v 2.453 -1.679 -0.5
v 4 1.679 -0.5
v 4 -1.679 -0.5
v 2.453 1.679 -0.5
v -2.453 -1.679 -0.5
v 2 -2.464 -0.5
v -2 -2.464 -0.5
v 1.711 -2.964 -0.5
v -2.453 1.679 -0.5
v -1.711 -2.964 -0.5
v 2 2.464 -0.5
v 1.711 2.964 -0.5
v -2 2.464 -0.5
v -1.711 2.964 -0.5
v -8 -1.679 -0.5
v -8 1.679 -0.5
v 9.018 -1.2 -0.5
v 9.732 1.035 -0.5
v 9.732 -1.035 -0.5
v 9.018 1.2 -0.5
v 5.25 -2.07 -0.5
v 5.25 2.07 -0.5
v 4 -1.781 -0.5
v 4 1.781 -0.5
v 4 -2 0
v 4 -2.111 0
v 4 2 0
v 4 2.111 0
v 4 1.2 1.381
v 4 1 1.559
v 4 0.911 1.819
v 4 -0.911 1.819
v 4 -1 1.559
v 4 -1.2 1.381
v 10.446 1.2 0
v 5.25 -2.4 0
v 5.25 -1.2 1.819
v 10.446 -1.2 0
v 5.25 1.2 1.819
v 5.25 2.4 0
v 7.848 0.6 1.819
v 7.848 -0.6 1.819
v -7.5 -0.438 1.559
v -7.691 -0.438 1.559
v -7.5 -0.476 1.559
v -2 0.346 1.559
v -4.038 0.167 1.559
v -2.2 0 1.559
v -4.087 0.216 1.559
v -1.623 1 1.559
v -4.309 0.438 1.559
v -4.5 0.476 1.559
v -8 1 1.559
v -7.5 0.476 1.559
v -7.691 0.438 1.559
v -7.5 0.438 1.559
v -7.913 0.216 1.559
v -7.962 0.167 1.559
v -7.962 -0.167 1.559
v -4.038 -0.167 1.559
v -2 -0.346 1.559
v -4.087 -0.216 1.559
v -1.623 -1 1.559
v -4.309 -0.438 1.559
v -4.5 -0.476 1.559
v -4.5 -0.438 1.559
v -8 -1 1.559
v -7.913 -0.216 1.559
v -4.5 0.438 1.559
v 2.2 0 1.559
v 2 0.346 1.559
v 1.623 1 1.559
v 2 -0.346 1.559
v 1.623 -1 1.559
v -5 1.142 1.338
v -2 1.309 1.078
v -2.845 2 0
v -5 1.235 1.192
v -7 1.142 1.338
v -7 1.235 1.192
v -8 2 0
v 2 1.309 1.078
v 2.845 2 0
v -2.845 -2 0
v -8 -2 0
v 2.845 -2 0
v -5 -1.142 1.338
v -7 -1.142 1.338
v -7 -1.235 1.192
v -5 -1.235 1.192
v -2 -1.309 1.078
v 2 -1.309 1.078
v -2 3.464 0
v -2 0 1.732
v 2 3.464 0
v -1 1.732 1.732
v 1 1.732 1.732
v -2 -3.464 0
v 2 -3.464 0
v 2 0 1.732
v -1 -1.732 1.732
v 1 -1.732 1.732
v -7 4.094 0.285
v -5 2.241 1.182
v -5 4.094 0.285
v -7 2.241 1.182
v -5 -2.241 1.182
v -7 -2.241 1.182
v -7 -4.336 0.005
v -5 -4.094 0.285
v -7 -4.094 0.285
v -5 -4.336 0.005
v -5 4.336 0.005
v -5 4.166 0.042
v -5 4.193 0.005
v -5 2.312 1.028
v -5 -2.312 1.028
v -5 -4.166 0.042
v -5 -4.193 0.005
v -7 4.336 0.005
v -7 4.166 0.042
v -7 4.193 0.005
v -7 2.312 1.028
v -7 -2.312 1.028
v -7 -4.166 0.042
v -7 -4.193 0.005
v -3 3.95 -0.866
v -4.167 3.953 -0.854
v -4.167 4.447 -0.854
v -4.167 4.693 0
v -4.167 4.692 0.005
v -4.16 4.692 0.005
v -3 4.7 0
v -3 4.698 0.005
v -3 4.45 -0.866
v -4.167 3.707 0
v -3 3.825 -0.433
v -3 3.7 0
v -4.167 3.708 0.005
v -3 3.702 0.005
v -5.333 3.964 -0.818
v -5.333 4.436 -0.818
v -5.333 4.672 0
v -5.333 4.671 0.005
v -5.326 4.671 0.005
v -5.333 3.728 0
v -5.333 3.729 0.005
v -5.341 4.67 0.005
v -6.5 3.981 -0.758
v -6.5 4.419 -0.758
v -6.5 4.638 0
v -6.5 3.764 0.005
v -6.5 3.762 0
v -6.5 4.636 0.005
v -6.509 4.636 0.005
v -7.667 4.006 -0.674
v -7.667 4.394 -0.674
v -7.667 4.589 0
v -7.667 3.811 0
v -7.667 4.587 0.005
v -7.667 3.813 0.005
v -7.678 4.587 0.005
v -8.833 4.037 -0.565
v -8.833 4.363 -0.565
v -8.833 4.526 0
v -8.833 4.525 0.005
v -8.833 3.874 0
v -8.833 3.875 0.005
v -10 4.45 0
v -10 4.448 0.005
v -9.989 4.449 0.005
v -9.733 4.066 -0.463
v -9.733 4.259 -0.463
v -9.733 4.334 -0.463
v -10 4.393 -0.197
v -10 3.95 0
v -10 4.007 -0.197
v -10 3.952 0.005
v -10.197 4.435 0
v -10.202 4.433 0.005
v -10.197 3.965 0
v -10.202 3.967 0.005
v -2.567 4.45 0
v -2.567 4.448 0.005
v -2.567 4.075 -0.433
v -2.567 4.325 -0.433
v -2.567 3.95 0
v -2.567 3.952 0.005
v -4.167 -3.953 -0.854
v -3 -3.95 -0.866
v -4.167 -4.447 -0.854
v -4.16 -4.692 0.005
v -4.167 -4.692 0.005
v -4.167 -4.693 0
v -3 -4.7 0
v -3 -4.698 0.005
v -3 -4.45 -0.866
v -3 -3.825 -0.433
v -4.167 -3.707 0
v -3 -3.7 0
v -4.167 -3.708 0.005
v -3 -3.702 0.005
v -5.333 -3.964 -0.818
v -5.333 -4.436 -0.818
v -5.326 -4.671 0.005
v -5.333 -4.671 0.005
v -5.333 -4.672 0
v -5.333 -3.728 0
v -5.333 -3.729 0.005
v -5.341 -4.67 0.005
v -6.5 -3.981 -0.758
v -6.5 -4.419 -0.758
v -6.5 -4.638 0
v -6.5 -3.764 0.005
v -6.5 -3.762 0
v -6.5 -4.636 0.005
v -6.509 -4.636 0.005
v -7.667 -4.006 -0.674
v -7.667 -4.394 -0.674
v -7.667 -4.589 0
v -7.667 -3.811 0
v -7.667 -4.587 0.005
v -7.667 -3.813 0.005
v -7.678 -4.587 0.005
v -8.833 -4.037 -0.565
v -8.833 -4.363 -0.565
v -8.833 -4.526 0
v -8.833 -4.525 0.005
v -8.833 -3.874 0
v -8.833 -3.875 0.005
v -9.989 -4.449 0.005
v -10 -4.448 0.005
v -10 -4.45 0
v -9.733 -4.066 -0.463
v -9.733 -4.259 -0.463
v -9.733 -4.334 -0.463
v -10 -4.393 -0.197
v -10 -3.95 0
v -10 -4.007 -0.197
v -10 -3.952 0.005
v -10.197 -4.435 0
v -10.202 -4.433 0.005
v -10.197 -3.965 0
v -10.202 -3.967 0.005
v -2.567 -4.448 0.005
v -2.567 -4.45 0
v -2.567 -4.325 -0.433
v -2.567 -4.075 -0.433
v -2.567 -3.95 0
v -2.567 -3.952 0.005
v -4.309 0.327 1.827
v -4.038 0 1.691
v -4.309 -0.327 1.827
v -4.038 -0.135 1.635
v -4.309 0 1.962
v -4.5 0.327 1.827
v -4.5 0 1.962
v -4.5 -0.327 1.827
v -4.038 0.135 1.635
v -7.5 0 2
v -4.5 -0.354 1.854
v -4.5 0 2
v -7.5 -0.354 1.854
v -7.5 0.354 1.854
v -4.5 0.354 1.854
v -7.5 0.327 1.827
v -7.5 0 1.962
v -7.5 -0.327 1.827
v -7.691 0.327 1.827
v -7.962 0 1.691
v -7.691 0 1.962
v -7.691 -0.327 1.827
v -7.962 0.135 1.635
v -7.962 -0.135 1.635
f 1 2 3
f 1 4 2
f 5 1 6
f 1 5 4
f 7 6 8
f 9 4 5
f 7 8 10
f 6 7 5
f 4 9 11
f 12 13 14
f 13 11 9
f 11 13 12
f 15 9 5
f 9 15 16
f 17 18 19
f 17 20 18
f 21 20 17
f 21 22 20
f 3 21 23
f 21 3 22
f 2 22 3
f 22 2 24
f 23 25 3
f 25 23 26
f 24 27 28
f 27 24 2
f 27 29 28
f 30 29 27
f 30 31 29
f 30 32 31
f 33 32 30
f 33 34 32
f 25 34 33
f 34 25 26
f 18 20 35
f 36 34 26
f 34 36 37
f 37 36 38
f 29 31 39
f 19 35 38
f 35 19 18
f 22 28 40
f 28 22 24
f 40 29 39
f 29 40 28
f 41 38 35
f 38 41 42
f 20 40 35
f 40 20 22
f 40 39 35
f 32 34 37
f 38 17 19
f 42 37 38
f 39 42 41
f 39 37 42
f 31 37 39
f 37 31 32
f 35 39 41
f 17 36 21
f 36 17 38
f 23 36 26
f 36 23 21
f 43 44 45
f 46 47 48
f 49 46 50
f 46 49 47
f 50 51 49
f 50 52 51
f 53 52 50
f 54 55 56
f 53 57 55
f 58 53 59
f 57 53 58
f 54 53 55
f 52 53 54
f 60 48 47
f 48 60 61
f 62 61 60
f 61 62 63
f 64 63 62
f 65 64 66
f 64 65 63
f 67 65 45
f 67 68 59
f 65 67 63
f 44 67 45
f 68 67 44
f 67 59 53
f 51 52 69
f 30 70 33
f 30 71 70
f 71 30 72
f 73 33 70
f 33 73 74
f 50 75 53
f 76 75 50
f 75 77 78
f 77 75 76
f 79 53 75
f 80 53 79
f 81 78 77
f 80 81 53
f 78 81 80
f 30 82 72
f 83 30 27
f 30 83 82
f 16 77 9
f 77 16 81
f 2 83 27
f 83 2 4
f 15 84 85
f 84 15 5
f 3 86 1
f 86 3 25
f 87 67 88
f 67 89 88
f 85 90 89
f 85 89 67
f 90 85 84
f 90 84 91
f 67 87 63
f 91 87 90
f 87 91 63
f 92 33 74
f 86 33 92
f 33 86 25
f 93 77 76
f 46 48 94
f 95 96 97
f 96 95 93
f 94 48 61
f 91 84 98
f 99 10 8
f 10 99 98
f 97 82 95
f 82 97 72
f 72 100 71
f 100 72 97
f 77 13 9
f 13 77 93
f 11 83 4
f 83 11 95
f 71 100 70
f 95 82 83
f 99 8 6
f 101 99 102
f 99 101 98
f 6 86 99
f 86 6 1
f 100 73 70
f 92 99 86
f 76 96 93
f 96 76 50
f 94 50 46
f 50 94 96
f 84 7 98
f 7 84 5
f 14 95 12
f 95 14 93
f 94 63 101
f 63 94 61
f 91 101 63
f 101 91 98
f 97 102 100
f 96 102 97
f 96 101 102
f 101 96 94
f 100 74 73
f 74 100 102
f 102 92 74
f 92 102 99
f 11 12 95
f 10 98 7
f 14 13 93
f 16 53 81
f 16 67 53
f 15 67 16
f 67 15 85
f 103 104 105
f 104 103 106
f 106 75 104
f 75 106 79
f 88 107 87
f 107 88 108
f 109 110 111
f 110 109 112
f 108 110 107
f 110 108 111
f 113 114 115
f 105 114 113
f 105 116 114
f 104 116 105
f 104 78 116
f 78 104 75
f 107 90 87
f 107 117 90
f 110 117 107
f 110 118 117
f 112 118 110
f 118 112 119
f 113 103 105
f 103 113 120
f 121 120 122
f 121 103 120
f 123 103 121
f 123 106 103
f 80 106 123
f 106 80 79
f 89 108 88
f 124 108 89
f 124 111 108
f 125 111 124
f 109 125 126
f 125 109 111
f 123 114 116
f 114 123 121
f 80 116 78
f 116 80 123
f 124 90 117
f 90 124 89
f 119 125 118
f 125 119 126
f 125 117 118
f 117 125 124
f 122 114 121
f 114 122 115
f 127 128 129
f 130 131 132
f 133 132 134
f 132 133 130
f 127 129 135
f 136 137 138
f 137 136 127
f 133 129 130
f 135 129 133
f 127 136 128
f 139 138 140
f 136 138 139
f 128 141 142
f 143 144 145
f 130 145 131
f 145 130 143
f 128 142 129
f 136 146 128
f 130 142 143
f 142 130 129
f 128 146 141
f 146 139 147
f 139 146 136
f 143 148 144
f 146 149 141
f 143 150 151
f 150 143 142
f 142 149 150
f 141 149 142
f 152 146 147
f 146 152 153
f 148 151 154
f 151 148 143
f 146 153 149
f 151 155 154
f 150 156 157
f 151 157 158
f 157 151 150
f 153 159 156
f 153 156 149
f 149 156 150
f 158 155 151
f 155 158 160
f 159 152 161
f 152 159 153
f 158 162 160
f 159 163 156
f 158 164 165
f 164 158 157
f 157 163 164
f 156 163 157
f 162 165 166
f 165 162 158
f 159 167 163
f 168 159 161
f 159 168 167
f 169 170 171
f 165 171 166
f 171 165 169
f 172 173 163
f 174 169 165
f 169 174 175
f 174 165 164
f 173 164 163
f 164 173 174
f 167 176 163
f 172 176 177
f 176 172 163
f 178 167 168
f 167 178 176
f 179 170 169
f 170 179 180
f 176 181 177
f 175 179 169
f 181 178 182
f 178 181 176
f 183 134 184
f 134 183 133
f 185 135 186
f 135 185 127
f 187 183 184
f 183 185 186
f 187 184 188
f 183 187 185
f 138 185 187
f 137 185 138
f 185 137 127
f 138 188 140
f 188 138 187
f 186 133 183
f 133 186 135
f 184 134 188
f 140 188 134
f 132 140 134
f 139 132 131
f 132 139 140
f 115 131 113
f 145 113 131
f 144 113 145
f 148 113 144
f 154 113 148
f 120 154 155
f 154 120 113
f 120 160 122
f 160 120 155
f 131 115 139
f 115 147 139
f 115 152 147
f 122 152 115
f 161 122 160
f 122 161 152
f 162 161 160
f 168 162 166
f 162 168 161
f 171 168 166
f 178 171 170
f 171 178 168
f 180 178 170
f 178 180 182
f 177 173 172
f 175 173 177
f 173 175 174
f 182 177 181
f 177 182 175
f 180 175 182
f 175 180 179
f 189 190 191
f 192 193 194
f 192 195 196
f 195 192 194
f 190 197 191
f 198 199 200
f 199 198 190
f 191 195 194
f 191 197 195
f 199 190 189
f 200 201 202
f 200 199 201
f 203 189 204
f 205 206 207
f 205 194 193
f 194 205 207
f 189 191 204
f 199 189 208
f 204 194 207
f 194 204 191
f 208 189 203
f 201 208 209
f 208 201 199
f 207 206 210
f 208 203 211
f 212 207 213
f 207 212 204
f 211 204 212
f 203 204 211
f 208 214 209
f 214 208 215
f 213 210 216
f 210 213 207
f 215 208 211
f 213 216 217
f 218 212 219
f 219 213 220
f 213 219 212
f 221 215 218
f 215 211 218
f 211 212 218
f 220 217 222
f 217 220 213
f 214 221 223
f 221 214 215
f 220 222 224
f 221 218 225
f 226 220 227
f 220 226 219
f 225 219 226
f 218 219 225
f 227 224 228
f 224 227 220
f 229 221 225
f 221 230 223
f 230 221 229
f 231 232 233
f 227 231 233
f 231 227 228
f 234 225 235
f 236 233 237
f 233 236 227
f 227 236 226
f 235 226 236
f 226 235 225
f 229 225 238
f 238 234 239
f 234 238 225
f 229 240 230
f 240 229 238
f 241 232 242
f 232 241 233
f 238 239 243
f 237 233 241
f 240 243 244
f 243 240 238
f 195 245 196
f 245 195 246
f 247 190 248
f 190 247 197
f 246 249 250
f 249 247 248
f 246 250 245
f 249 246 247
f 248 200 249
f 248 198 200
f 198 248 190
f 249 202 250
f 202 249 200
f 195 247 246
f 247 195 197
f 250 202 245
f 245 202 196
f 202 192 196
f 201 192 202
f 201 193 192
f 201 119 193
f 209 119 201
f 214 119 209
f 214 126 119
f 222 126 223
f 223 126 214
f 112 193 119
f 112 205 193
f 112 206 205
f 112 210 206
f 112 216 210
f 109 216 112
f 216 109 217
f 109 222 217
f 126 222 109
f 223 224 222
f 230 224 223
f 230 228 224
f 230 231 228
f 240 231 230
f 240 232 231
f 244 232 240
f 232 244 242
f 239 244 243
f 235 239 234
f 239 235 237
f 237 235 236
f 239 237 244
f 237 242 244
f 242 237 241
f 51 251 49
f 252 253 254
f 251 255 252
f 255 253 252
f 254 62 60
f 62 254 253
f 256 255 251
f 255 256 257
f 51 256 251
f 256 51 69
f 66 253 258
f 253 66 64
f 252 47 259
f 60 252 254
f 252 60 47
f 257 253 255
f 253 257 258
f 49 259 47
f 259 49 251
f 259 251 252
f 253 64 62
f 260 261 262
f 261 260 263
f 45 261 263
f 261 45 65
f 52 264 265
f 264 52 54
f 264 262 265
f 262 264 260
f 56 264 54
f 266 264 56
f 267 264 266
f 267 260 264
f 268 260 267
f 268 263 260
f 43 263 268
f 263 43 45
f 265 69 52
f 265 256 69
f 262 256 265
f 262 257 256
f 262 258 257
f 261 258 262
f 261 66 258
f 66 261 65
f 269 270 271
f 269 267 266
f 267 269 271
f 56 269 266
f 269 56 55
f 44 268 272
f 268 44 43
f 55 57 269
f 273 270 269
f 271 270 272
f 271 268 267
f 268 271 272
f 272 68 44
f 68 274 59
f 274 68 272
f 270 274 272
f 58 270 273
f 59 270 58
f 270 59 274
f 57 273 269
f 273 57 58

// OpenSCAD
// file: ../lib/util.scad
fn1 = 32;
fn2 = 16;

module util_half_sphere(radius, fn=fn1) {
    difference() {
        sphere(radius, $fn=fn);
        translate([0,0,-(radius+radius/19)])
            cube(2*radius+radius/10, center=true);
    }
}

function gcd(a,b) = a == b ? a : a > b ? gcd(a-b, b) : gcd(a, b-a);

module util_saucer(length, width, height, fn=fn1) {
    rad = gcd(length,gcd(width,height));
    //rad = 10;
    scale([length/(2*rad), width/(2*rad), height/rad])
        util_half_sphere(rad, fn);
}

module util_half_cylinder(length, radius, inner_fn=fn2, outer_fn=fn1) {
    maxval = max(length, 2*radius);
    intersection() {
        difference() {
            rotate([0,90,0])
                translate([0,0,-(length/2 + length/20)])
                    cylinder(length+length/10, radius, radius, $fn=inner_fn);
            
            translate([0,0,(maxval/2 + maxval/19)])
                cube(maxval+maxval/10, center=true);
        }
        
        translate([0,0,-(radius+radius/20)])
            cylinder(radius + radius/10, length/2, length/2, $fn=outer_fn);
    }
}

module util_body(length, width, height, upper_height, fn=fn1) {
    rad = gcd(length, gcd(width, upper_height));
    
    scale(.995) scale([length/(2*rad), width/(2*rad), 1])
        util_half_cylinder(2*rad, height, outer_fn=fn);
}

module util_graded_cylinder(height, radius_start, radius_end, grades=1, fn=fn1) {
    height_grade = height / grades;
    radius_grade = (radius_start - radius_end) / (grades * grades);
    for (i = [0 : 1 : grades]) {
        translate([0,0,i*height_grade])
            cylinder(height_grade, 
                     radius_start - i*radius_grade * i,
                     radius_start - (i+1) * radius_grade * (i+1),
                     $fn = fn);
    }
}

module util_nacelle(length, width, height, curved=false, up=true, front_bulge=false) {
    rad = min(width, height/2);
    grads = curved ? 6 : 1;
    scale_factor = front_bulge ? 1.1 : 1;
    direction = up ? -1 : 1;
    difference() {
        scale([1, width/ (2*rad), height/rad])
            difference() {
                union() {
                    rotate([0,-90,0])
                        rotate(30)
                            util_graded_cylinder(length-rad, rad, rad/2, grads, 6);
                    scale(scale_factor) 
                        rotate([0,90,0]) rotate(90) sphere(rad, $fn=6);
                }
                
                translate([-length/2, 0, direction * (height/2 + height/19)])
                    cube([length+length, width+width, height+height/10], center=true);
            }
        
        translate([-length-(curved?length/3:0), 0, -length/3])
            rotate([0,-45,0])
                cube(length, center=true);
    }
}

module util_mirrored(v) {
    children();
    mirror(v) children();
}

module util_ring(outer, inner, height) {
    difference() {
        translate([0,0,-height/2])
            cylinder(height, outer, outer);
        translate([0,0,-(height/2 + height/19)])
            cylinder(height+height/10, inner, inner);
    }
}

module util_star(radius, thick, num, half=false) {
    angle = 360/num;
    offset = half? angle/2 : 0;
    for (i = [0: 1: num]) {
        rotate(i* angle + offset)
            translate([radius/2,0,0])
                cube([radius, thick, thick], center=true);
    }
}

module util_ring_star(radius, thick, num, inner, half=false) {
    outer=inner+thick;
    avg = (inner + outer)/2;
    union() {
        difference() {
            util_star(radius, thick, num, half);
            cylinder(2*thick, outer, outer, $fn=num, center=true);
        }
        util_ring(outer, inner, thick);
    }
}

module util_hangar_disk(height, lower, upper, num, fn=fn1) {
    difference() {
            cylinder(height, lower, upper, $fn=fn, center=true);
        difference() {
            scale([1,1,22])
                util_star(1.1*upper, height/20, num, half=true);
            scale(.95)
                cylinder(height, lower, upper, $fn=fn, center=true);
        }
    }
}

module util_hangar_form(length, width, height, num, inner=0) {
    l = 0.6* max(length, width);
    h = 2.5* height;
    thick = min(height/20,1);
    inner = inner == 0 ? l/3 : inner;
    difference() {
        children();
        scale([1,1,h/thick]) 
            util_ring_star(l, thick, num, inner, half=true);
    }
    scale(.95) children();
}

module util_nacelle_bar(span, height, width, thickness) {
    rad = (span*span/(8*height) + height/2);
    outer = rad + thickness/2;
    inner = rad - thickness/2;
    difference(){
        translate([0,0,outer])
            rotate([0,90,0])
                util_ring(outer, inner, width);
    
        translate([0,0,1.1*outer+height])
            cube(2.2*outer, center=true);
    }
}

module util_q_sphere(rad, quadrant, faces) {
    x_sign = quadrant == 1 ? 1 :
             quadrant == 2 ? -1 :
             quadrant == 3 ? -1 :
             quadrant == 4 ? 1 : 0;
    z_sign = quadrant == 1 ? 1 :
             quadrant == 2 ? 1 :
             quadrant == 3 ? -1 :
             quadrant == 4 ? -1 : 0;
    
    difference() {
        sphere(rad, $fn=faces);

        translate([x_sign*(-1.1*rad - .01),0,0])
        cube(2.2*rad, center=true);

        translate([0,0,z_sign*(-1.1*rad - .01)])
        cube(2.2*rad, center=true);
    }
}

module util_ovoid(front_rad, back_rad, width, upper_rad, lower_rad, faces=32) {
    half_width = width/2;
    largest=max(front_rad, back_rad, half_width, upper_rad, lower_rad);
    smallest=min(front_rad, back_rad, half_width, upper_rad, lower_rad);
    
    union() {
        scale([front_rad/smallest, half_width/smallest, upper_rad/smallest])
        util_q_sphere(smallest, 1, faces);
        
        scale([front_rad/smallest, half_width/smallest, lower_rad/smallest])
        util_q_sphere(smallest, 4, faces);
        
        scale([back_rad/smallest, half_width/smallest, lower_rad/smallest])
        util_q_sphere(smallest, 3, faces);
        
        scale([back_rad/smallest, half_width/smallest, upper_rad/smallest])
        util_q_sphere(smallest, 2, faces);
    }
}
// file: macs.scad
use <../lib/util.scad>;

module macs_pod_small() {
    difference() {
        scale([.5,.4,.35])
            rotate(90)
                sphere(6, $fn=6);
        macs_pod_diff();
    }
}

module macs_pod_diff() {
    translate([0,0,-(6+.5)])
        cube(12, center=true);

    translate([-(3+1.25),0,0])
        cube(6, center=true);
}

module macs_pod() {
    difference() {
        scale([1,.4,.35])
            rotate(90)
                sphere(6, $fn=6);
        macs_pod_diff();
    }
    
    //macs_pod_wing();
}

module macs_small_nacelle() {
    util_nacelle(7.5,1,1,curved=true, up=false);
}


module macs_pod_wing() {
    translate([-1,0,0])
        rotate([0,90,0])
            scale([.1,1,1])
                cylinder(2, 3.5, 2.75, $fn=6);
}

module macs_small_warp() {
    macs_corridor(4);

    translate([0,0,1.5])
        mirror([0,0,1])
            scale([1,1.2,0.8])
                util_nacelle_bar(7.5,2,2,.15);

    util_mirrored([0,1,0])
        translate([3,4.2,0])
            macs_small_nacelle();
    
    translate([0,0,1.5])
        rotate([0,90,0]) {
            translate([0,0,1.5]) sphere(.5, $fn=8);
            cylinder(3,.5,.5, center=true, $fn=8);
            translate([0,0,-1.5]) sphere(.5, $fn=8);
        }
}




module macs_extra_room() {
     macs_corridor(8);

     difference() {
         scale([1,1,.5])
            sphere(4, $fn=6);


        translate([0,0,-(6+.5)])
            cube(12, center=true);
    }
}

module macs_tactical_warp() {
    translate([0,0,0])
    macs_corridor(8);

    difference() {
        translate([0,0,-.5+1.2])
        cylinder(h=2.4,r1=8,r2=5,center=true,$fn=3);

        translate([4+3,0,0])
        cube(8, center=true);
    }

    util_mirrored([0,1,0])
    translate([-1.5,4,-.5+.6])
    scale([2.5,1,1])
    difference() {
        rotate(45/2)
        cylinder(h=1.2,r1=3,r2=2,center=true, $fn=8);
        
        translate([0,-3.5,0])
        rotate([-20,0,0])
        cube(7,center=true);
    }
}





module macs_corridor(length) {
    difference() {
        scale([1,1,.9])
            rotate([0,-90,0])
                rotate(90)
                    cylinder(length,2,2,$fn=6, center=true);
        translate([0,0,-(length*1.1/2 +.5)])
            cube(length*1.1, center=true);
    }
}

module macs_large_nacelle() {
    util_nacelle(23,2.5,2.5,curved=true,up=false);
}

module macs_large_warp(up=false) {
    macs_corridor(16);
    scale(1.5) macs_corridor(4);
    translate([0,0,.5]) {
        if(up) {
            util_nacelle_bar(25,2.5,2,.5);
        }
        else {
            mirror([0,0,1]) util_nacelle_bar(25,2.5,2,.5);
        };
    };
    
    if (up) {
        util_mirrored([0,1,0]) 
            translate([4,11,2.5]) 
                rotate([105,0,0])
                    macs_large_nacelle();
    } else {
        util_mirrored([0,1,0]) 
            translate([4,11,-2]) 
                rotate([75,0,0])
                    macs_large_nacelle();
    };
}



module macs_box() {
    scale([1,1.5,.5]) {
        rotate([0,90,0])
            rotate(180/8)
                cylinder(8,4,4, $fn=8, center=true);

        util_mirrored([1,0,0])
            translate([4,0,0])
                rotate([0,90,0])
                    rotate(180/8)
                        sphere(4, $fn=8);
    }
}



module macs_double_box() {
    union() {
        translate([-7,0,0]) macs_box();
        translate([7,0,0]) macs_box();
    }
}


module macs_disk(radius) {
    util_hangar_form(radius*2,radius*2,2,4,3) union () {
        translate([0,0,2]) cylinder(0.25, radius, radius-.5, center=true);
        cylinder(3.5, radius, radius, center=true);
        translate([0,0,-2]) cylinder(0.25, radius-.5, radius, center=true);
    }
    cylinder(4.5, 3,3, center=true);
}


module macs_cargo_element() {
    rotate([0,90,0]) scale([1,1,2]) macs_disk(6);
}

module macs_large_cargo() {
    translate([28,0,0]) macs_cargo_element();
    translate([20,0,0]) macs_cargo_element();
    translate([12,0,0]) macs_cargo_element();
    translate([4,0,0]) macs_cargo_element();
    translate([-4,0,0]) macs_cargo_element();
    translate([-12,0,0]) macs_cargo_element();
    translate([-20,0,0]) macs_cargo_element();
    translate([-28,0,0]) macs_cargo_element();

    translate([20,0,0]) cylinder(6.6,3,3);
    translate([-20,0,0]) cylinder(6.6,3,3);
}

    
// main file
use <macs.scad>;

module macs_large_shuttle() {
    union() {
        translate([1.25 + 4, 0, 0]) macs_pod();
        macs_extra_room();
        translate([-2 - 4, 0, 0]) macs_small_warp();
    }
}


macs_large_shuttle();
